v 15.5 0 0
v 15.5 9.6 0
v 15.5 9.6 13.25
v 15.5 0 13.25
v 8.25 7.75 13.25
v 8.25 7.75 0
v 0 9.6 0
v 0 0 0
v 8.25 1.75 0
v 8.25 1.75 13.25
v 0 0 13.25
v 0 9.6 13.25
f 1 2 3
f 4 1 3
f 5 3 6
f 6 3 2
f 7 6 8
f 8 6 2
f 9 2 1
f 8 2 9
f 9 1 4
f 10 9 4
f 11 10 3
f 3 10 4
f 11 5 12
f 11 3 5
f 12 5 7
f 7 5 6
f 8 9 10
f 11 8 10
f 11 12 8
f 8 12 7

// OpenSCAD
linear_extrude(height=13.25)
polygon([[0,0],[0,9.6],[8.25,7.75],[15.5,9.6],[15.5,0],[8.25,1.75]]);
